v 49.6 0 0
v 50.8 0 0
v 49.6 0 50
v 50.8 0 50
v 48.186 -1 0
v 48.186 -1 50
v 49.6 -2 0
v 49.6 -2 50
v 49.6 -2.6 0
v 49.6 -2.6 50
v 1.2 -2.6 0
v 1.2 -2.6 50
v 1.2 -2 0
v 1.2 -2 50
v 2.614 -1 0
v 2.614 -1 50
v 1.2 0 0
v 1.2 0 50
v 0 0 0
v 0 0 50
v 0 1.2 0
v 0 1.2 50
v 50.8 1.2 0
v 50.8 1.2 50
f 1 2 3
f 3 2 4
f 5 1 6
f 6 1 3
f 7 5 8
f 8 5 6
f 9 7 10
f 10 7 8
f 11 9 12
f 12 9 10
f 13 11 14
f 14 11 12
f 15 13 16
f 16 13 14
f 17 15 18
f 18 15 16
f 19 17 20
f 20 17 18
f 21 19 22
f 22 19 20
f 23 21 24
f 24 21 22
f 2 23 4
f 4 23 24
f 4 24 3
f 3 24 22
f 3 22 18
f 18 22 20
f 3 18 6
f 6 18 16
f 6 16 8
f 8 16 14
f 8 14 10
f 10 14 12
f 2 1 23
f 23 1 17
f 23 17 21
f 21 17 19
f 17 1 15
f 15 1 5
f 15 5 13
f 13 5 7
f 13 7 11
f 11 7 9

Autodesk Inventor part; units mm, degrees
ref_plane "YZ Plane" through (0, 0, 0) normal (1, 0, 0) x (0, 1, 0)
ref_plane "XZ Plane" through (0, 0, 0) normal (0, 1, 0) x (-1, 0, 0)
ref_plane "XY Plane" through (0, 0, 0) normal (0, 0, 1) x (1, 0, 0)
sketch "Sketch1" plane through (0, 0, 0) normal (0, 0, 1) x (1, 0, 0)
  line L0 (50.8, 0) -> (50.8, 1.2)
  line L1 (50.8, 1.2) -> (0, 1.2)
  line L2 (0, 1.2) -> (0, 0)
  line L3 (0, 0) -> (1.2, 0) construction
  line L4 (1.2, 0) -> (1.2, -7.6054) construction
  line L5 (1.2, -7.6054) -> (0, -7.6054) construction
  line L6 (0, -7.6054) -> (0, 0) construction
  line L7 (50.8, 0) -> (49.6, 0) construction
  line L8 (49.6, 0) -> (49.6, -9.5013) construction
  line L9 (49.6, -9.5013) -> (50.8, -9.5013) construction
  line L10 (50.8, -9.5013) -> (50.8, 0) construction
  line L11 (1.2, 0) -> (1.2, -2) construction
  line L12 (1.2, -1) -> (2.614, -1) construction
  line L13 (1.2, -2) -> (2.614, -1)
  line L14 (1.2, 0) -> (2.614, -1)
  line L15 (1.2, -2) -> (1.2, -2.6)
  line L16 (1.2, -2.6) -> (49.6, -2.6)
  line L17 (49.6, -2.6) -> (49.6, -2)
  line L18 (49.6, -2) -> (49.6, 0) construction
  line L19 (49.6, -1) -> (48.186, -1) construction
  line L20 (49.6, -2) -> (48.186, -1)
  line L21 (49.6, 0) -> (48.186, -1)
  line L22 (0, 0) -> (1.2, 0)
  line L23 (49.6, 0) -> (50.8, 0)
  dimension "Width" = 50.8
  dimension "Thickness" = 1.2
  dimension "Leftwall" = 1.2
  dimension "Rightwall" = 1.2
  dimension "LTheight" = 2
  dimension "LTwidth" = 1.414
  dimension "BThickness" = 0.6
  dimension "BThicknessR" = 0.6
  dimension "RTWidth" = 1.414
extrude "Extrusion1" add sketch "Sketch1" along normal blind 50
equation "\"Rightwall\" = Leftwall"
equation "\"BThicknessR\" = BThickness"
equation "\"RTWidth\" = LTwidth"
properties part number "channel_lid"
